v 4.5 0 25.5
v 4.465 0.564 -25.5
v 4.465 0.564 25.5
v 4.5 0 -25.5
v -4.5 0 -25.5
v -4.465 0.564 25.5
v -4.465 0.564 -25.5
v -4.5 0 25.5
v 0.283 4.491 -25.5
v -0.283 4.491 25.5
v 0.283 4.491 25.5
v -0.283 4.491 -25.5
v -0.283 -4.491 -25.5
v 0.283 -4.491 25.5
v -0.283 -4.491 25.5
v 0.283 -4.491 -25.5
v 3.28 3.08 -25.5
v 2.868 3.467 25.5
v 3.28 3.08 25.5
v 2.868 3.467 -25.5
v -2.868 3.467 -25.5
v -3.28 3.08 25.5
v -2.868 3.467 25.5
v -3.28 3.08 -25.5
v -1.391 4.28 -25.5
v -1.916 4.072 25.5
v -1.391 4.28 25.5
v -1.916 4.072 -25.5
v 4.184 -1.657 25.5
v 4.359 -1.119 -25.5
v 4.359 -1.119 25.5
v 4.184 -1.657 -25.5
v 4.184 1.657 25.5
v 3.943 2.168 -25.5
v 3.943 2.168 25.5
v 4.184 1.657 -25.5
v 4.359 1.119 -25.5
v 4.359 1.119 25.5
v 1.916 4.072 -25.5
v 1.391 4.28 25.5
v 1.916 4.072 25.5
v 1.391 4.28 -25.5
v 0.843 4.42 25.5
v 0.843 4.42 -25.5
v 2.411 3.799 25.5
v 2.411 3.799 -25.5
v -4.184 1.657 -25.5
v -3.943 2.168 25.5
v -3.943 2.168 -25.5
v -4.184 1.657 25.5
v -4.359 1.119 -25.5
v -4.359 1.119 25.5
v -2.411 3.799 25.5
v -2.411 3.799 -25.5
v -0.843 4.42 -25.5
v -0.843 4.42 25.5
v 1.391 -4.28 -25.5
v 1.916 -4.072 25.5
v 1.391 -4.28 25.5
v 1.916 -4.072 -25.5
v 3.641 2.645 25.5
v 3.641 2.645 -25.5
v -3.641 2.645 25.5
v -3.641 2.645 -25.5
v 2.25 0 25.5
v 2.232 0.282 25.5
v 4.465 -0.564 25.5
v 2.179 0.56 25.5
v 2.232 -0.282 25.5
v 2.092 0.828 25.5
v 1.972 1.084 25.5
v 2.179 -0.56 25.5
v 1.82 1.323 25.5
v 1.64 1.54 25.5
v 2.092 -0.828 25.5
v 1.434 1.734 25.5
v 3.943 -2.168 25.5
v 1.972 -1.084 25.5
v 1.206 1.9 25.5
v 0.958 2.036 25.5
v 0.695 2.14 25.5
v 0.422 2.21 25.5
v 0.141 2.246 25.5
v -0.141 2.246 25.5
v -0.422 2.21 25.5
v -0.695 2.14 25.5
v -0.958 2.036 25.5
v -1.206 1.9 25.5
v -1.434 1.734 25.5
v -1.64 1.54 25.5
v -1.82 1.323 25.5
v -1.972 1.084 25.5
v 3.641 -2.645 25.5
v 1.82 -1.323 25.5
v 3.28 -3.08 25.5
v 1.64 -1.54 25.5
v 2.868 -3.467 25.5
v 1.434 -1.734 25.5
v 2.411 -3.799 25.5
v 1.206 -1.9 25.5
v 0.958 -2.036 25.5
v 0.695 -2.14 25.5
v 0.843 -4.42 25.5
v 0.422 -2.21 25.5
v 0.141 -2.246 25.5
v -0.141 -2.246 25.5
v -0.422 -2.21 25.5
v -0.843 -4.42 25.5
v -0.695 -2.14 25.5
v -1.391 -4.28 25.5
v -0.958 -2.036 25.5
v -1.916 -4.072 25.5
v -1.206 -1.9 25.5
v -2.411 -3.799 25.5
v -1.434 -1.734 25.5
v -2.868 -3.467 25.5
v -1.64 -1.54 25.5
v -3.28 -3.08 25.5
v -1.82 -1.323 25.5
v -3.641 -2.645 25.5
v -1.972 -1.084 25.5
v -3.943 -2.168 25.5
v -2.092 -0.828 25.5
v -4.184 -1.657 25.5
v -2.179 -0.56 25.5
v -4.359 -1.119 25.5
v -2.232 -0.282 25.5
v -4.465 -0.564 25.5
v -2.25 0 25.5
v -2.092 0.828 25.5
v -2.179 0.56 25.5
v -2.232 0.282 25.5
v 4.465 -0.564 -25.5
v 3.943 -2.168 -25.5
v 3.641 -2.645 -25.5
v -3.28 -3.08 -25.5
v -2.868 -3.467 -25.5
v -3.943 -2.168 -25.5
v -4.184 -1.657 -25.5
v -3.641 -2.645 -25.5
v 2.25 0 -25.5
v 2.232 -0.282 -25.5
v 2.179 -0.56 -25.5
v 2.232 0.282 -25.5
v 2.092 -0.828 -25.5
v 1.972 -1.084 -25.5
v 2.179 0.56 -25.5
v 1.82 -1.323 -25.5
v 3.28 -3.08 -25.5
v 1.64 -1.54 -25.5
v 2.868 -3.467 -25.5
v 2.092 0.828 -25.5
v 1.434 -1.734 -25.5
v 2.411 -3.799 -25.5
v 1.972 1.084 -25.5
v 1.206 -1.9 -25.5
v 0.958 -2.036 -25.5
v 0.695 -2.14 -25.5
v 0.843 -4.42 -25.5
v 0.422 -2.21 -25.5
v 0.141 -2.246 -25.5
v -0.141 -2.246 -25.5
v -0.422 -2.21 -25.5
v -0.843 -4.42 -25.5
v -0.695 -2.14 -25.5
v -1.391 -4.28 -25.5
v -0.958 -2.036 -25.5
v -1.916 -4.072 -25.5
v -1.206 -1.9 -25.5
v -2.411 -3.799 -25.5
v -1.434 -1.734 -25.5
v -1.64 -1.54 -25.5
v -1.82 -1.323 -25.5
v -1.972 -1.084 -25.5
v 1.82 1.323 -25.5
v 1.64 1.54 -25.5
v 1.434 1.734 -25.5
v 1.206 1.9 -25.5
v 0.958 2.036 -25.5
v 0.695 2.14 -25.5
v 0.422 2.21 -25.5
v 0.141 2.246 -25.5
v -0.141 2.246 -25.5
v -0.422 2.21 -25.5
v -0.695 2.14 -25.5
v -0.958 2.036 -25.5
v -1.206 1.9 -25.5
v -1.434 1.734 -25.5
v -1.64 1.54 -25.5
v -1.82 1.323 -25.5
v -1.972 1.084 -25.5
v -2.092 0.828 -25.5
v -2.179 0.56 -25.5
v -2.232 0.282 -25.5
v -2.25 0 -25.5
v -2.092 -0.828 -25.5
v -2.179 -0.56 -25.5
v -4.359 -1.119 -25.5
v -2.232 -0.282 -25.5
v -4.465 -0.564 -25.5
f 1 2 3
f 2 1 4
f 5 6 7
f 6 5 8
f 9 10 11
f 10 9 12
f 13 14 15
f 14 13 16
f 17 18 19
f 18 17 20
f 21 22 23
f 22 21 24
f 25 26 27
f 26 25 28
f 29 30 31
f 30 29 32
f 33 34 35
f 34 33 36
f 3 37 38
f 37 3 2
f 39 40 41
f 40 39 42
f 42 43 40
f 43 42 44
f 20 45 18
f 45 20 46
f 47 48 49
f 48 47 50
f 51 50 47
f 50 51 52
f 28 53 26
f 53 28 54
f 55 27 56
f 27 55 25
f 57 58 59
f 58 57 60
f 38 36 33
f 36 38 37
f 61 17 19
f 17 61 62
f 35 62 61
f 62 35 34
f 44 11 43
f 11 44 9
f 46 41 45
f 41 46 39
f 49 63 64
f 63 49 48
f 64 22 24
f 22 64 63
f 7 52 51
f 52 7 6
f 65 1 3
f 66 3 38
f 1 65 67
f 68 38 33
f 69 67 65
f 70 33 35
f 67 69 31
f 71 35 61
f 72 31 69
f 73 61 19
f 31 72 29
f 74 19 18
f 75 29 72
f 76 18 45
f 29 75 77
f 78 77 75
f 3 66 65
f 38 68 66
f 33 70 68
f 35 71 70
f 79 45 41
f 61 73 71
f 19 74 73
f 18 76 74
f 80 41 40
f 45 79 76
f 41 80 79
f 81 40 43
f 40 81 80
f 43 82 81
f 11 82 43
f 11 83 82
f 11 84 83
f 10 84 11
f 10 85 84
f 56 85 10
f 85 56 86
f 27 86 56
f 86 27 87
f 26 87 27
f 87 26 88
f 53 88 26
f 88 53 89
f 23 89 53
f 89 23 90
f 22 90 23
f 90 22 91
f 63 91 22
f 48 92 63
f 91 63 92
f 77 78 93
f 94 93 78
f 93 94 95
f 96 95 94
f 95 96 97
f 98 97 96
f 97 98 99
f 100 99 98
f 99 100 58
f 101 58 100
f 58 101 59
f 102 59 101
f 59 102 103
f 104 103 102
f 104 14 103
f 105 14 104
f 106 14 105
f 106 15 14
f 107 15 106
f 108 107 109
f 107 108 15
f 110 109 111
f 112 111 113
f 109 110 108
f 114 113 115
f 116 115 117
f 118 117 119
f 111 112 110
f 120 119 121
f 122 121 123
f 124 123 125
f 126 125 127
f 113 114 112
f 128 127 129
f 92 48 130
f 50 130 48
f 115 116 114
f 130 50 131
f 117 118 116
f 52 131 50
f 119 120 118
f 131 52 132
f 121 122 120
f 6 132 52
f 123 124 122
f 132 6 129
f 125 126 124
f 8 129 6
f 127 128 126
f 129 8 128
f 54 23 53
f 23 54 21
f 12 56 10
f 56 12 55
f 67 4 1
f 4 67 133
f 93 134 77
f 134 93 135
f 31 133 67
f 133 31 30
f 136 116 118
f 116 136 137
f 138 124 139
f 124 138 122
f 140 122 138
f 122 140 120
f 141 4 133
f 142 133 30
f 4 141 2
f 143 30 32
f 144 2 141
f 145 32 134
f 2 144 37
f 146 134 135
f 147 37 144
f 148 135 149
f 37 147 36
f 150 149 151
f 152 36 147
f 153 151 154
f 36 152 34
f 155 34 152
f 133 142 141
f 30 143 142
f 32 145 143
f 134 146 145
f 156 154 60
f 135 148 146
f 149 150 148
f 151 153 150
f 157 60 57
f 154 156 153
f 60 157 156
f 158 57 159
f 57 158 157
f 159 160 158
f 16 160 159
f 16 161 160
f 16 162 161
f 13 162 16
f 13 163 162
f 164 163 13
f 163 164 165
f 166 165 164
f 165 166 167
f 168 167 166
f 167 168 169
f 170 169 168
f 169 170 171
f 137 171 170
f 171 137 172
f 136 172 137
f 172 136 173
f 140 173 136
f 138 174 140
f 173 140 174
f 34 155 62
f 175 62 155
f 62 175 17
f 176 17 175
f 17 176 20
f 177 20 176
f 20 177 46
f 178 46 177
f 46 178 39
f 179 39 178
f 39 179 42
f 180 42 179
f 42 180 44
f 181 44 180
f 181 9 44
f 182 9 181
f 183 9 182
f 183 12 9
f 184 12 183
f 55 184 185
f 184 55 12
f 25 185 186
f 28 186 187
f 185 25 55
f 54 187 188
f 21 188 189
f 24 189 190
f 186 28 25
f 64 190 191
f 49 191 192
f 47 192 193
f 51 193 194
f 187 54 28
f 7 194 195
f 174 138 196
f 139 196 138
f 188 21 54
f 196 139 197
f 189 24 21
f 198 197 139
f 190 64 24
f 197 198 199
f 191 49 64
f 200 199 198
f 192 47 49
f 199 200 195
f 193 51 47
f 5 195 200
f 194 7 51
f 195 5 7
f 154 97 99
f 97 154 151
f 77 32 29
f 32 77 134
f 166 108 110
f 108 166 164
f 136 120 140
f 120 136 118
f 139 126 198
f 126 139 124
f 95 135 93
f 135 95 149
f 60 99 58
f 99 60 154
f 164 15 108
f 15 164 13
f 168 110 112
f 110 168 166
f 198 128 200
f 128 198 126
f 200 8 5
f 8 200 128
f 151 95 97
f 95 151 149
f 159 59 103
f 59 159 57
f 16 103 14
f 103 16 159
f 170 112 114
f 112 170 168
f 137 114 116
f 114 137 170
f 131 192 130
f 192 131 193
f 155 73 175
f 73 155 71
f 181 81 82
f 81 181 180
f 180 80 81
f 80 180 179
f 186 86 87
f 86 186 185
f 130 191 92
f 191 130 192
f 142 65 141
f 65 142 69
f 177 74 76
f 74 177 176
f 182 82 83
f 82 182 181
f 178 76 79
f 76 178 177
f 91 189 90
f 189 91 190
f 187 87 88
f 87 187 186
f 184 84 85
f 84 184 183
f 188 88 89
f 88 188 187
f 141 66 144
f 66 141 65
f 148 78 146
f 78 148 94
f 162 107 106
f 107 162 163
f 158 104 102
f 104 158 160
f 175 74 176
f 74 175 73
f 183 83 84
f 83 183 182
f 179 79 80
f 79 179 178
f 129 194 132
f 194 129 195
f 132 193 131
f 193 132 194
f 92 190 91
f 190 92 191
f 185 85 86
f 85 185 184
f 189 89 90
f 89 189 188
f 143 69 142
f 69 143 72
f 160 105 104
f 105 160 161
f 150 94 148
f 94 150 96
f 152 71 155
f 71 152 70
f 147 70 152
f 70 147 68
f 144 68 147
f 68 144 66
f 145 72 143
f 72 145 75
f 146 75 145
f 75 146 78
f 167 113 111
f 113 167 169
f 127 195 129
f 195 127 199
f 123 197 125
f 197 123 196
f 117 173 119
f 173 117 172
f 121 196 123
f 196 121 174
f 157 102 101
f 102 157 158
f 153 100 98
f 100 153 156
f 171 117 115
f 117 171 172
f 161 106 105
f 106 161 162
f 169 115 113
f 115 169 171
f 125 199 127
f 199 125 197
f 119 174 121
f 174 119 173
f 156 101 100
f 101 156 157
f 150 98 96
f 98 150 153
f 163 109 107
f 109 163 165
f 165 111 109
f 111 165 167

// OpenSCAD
$fn = 50;


difference() {
	union() {
		translate(v = [0, 0, -25.5000000000]) {
			cylinder(h = 51, r = 4.5000000000);
		}
	}
	union() {
		translate(v = [0, 0, -100.0000000000]) {
			cylinder(h = 200, r = 2.2500000000);
		}
	}
}
